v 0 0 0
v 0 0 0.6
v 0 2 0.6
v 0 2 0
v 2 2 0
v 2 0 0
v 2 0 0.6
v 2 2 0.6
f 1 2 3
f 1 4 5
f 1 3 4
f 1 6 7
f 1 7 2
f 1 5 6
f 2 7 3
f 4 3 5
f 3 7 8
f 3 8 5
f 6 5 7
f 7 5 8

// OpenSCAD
/* Warning, this is a very basic generator with a lot of approximation 
input data : [UQFN, MHA, 2x2x0.6mm, 12, , A, C04-01048A]
generated by com.zoubworld.electronics.cad.model3d.Basic
Date : Sun Feb 15 10:50:49 CET 2026
*/

//body
color("black")
translate([0,0,0])
cube([2.0,2.0,0.6], center=false);
